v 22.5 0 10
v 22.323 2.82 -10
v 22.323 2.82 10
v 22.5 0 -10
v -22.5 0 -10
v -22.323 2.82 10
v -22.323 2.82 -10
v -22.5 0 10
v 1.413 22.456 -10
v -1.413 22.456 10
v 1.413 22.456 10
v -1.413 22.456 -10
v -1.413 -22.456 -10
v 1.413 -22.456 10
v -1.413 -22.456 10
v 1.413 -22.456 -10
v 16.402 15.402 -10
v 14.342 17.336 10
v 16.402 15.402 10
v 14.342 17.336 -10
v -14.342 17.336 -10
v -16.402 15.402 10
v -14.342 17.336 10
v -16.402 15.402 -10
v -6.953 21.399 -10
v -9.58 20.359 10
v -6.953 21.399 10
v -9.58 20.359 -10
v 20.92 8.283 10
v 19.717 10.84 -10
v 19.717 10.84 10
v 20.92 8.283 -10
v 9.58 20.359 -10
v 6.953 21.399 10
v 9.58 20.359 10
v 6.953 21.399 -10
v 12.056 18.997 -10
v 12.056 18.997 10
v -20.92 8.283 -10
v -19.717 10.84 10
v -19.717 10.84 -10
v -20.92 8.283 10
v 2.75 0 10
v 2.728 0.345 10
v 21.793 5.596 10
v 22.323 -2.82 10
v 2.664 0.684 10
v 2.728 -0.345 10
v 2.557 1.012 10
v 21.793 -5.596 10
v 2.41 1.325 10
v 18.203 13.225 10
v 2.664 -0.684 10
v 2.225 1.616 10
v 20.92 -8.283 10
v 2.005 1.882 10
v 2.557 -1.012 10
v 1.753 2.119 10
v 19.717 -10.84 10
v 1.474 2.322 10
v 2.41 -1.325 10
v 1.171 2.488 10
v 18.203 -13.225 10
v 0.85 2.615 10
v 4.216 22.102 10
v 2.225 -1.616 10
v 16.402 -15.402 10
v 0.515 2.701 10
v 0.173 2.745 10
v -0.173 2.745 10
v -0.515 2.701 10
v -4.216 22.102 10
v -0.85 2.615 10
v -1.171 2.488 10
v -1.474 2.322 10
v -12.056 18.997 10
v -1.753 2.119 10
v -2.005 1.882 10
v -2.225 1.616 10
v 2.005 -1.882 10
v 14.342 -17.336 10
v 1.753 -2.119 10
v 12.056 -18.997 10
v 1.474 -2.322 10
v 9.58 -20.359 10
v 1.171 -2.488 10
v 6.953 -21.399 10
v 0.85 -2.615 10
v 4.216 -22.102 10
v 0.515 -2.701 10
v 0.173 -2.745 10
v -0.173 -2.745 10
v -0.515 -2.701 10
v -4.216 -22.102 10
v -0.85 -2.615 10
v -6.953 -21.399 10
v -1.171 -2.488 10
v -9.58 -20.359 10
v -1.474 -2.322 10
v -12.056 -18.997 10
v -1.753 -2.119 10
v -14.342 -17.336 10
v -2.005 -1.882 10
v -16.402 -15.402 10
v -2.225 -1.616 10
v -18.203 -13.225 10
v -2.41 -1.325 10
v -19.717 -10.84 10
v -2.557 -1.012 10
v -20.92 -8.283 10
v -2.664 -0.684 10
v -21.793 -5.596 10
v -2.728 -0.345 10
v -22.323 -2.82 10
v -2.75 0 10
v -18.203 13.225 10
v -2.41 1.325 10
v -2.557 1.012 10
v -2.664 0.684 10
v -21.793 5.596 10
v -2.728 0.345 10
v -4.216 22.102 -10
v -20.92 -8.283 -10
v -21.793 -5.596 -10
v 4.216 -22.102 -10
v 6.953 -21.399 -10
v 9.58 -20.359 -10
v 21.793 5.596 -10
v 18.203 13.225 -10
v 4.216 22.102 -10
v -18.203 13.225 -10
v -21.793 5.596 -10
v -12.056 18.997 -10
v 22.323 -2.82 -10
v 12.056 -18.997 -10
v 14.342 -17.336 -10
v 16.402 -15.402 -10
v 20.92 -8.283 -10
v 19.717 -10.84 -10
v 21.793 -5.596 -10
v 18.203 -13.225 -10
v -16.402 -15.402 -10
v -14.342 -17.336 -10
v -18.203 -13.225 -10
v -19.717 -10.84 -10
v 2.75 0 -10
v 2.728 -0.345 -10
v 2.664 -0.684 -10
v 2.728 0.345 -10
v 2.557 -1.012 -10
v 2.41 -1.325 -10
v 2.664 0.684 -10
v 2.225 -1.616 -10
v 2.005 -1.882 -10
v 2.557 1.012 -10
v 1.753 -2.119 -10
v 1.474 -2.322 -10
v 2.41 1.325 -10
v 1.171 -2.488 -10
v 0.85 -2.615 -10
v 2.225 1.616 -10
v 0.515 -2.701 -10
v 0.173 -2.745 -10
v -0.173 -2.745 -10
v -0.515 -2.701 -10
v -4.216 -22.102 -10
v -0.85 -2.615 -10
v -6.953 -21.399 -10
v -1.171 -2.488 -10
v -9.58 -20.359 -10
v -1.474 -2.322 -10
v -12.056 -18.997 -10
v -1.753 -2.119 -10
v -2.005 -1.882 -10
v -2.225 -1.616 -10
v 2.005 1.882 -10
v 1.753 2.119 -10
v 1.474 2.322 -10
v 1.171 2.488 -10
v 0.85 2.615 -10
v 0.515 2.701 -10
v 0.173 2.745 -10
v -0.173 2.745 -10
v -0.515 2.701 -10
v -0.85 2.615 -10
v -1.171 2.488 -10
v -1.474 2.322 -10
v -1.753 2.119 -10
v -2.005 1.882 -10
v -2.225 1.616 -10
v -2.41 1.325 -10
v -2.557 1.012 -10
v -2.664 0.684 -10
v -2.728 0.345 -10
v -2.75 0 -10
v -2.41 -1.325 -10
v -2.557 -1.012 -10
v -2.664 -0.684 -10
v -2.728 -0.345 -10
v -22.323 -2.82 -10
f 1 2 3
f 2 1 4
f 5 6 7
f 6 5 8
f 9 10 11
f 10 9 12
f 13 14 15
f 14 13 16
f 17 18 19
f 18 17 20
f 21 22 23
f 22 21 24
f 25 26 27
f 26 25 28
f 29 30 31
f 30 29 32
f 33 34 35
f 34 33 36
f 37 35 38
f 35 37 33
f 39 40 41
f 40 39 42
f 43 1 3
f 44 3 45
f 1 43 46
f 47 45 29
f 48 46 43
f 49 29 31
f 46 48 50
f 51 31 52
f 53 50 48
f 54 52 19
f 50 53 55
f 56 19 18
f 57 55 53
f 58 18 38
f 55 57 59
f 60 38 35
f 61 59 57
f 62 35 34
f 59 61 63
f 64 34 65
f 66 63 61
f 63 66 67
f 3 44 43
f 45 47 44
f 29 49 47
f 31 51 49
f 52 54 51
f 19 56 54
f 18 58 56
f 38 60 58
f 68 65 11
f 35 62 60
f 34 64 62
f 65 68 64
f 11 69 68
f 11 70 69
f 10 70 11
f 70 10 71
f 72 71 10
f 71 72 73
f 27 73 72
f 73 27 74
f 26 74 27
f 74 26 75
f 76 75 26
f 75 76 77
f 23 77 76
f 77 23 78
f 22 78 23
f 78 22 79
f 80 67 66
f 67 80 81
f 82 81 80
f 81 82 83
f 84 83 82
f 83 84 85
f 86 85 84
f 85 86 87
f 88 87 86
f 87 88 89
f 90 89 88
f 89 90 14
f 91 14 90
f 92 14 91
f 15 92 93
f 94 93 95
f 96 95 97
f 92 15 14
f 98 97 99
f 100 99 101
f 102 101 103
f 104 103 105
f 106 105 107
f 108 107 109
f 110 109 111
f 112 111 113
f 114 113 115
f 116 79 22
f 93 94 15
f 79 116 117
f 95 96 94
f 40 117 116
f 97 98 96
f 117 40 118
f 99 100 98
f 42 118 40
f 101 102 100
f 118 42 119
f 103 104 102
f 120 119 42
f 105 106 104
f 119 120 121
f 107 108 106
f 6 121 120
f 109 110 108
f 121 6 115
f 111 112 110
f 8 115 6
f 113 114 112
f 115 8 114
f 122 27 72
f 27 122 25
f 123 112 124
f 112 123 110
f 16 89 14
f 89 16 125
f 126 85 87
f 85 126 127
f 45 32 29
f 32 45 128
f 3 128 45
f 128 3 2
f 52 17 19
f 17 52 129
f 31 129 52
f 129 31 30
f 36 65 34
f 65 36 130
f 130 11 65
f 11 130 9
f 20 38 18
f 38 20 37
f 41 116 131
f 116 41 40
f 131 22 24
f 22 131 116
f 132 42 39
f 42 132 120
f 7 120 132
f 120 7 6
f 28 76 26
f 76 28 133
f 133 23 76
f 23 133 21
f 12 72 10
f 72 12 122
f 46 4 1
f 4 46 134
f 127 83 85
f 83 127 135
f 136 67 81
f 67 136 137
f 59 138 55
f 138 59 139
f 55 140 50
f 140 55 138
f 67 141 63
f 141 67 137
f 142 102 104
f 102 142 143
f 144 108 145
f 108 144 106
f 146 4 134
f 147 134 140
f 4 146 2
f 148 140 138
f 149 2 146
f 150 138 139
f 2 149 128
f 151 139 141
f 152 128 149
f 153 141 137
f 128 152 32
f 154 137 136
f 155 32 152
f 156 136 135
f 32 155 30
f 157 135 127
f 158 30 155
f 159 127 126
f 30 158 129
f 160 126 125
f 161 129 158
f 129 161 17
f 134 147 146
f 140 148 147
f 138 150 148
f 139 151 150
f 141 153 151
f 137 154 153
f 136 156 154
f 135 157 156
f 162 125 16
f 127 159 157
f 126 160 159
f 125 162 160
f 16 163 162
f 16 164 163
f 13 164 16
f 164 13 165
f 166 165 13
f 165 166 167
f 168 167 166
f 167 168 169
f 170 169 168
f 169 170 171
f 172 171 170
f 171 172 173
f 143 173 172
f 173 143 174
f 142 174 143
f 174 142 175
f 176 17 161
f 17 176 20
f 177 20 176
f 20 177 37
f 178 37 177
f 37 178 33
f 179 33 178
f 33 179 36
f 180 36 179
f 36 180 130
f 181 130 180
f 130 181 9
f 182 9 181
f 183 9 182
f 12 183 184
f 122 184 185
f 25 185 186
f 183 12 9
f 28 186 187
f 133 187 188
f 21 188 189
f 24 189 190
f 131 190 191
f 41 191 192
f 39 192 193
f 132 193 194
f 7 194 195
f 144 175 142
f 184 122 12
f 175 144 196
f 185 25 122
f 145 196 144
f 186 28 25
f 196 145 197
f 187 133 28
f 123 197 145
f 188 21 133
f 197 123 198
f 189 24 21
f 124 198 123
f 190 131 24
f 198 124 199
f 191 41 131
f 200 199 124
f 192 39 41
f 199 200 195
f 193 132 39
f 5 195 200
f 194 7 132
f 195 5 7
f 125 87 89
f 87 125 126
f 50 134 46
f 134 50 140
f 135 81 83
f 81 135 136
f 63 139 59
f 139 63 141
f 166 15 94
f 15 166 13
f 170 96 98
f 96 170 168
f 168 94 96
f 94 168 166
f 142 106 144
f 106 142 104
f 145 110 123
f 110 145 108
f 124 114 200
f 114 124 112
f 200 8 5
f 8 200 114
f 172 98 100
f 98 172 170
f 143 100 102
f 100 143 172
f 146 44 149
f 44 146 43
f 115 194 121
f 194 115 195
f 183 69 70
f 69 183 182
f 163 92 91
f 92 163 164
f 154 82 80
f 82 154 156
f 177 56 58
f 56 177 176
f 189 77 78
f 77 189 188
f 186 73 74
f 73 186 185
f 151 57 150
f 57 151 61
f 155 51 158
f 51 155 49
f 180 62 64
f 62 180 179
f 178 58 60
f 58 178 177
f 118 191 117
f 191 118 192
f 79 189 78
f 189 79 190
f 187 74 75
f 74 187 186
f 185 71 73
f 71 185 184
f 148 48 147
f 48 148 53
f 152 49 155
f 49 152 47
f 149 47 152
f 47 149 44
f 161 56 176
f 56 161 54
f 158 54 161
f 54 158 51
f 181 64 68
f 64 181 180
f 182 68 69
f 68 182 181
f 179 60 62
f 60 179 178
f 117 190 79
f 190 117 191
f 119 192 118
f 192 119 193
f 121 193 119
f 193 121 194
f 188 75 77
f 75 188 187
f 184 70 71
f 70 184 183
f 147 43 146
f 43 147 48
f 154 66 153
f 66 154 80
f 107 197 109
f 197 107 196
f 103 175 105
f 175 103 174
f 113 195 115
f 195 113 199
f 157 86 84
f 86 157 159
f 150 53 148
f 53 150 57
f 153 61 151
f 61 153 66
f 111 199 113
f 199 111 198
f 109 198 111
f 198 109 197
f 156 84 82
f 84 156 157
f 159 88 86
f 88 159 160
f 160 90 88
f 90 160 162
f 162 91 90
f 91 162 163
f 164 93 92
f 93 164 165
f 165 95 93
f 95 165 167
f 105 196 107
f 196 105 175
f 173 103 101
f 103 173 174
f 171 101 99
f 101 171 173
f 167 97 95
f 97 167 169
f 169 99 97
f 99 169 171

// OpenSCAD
$fn = 50;


difference() {
	union() {
		translate(v = [0, 0, -10.0000000000]) {
			cylinder(h = 20, r = 22.5000000000);
		}
	}
	union() {
		translate(v = [0, 0, -100.0000000000]) {
			cylinder(h = 200, r = 2.7500000000);
		}
	}
}
